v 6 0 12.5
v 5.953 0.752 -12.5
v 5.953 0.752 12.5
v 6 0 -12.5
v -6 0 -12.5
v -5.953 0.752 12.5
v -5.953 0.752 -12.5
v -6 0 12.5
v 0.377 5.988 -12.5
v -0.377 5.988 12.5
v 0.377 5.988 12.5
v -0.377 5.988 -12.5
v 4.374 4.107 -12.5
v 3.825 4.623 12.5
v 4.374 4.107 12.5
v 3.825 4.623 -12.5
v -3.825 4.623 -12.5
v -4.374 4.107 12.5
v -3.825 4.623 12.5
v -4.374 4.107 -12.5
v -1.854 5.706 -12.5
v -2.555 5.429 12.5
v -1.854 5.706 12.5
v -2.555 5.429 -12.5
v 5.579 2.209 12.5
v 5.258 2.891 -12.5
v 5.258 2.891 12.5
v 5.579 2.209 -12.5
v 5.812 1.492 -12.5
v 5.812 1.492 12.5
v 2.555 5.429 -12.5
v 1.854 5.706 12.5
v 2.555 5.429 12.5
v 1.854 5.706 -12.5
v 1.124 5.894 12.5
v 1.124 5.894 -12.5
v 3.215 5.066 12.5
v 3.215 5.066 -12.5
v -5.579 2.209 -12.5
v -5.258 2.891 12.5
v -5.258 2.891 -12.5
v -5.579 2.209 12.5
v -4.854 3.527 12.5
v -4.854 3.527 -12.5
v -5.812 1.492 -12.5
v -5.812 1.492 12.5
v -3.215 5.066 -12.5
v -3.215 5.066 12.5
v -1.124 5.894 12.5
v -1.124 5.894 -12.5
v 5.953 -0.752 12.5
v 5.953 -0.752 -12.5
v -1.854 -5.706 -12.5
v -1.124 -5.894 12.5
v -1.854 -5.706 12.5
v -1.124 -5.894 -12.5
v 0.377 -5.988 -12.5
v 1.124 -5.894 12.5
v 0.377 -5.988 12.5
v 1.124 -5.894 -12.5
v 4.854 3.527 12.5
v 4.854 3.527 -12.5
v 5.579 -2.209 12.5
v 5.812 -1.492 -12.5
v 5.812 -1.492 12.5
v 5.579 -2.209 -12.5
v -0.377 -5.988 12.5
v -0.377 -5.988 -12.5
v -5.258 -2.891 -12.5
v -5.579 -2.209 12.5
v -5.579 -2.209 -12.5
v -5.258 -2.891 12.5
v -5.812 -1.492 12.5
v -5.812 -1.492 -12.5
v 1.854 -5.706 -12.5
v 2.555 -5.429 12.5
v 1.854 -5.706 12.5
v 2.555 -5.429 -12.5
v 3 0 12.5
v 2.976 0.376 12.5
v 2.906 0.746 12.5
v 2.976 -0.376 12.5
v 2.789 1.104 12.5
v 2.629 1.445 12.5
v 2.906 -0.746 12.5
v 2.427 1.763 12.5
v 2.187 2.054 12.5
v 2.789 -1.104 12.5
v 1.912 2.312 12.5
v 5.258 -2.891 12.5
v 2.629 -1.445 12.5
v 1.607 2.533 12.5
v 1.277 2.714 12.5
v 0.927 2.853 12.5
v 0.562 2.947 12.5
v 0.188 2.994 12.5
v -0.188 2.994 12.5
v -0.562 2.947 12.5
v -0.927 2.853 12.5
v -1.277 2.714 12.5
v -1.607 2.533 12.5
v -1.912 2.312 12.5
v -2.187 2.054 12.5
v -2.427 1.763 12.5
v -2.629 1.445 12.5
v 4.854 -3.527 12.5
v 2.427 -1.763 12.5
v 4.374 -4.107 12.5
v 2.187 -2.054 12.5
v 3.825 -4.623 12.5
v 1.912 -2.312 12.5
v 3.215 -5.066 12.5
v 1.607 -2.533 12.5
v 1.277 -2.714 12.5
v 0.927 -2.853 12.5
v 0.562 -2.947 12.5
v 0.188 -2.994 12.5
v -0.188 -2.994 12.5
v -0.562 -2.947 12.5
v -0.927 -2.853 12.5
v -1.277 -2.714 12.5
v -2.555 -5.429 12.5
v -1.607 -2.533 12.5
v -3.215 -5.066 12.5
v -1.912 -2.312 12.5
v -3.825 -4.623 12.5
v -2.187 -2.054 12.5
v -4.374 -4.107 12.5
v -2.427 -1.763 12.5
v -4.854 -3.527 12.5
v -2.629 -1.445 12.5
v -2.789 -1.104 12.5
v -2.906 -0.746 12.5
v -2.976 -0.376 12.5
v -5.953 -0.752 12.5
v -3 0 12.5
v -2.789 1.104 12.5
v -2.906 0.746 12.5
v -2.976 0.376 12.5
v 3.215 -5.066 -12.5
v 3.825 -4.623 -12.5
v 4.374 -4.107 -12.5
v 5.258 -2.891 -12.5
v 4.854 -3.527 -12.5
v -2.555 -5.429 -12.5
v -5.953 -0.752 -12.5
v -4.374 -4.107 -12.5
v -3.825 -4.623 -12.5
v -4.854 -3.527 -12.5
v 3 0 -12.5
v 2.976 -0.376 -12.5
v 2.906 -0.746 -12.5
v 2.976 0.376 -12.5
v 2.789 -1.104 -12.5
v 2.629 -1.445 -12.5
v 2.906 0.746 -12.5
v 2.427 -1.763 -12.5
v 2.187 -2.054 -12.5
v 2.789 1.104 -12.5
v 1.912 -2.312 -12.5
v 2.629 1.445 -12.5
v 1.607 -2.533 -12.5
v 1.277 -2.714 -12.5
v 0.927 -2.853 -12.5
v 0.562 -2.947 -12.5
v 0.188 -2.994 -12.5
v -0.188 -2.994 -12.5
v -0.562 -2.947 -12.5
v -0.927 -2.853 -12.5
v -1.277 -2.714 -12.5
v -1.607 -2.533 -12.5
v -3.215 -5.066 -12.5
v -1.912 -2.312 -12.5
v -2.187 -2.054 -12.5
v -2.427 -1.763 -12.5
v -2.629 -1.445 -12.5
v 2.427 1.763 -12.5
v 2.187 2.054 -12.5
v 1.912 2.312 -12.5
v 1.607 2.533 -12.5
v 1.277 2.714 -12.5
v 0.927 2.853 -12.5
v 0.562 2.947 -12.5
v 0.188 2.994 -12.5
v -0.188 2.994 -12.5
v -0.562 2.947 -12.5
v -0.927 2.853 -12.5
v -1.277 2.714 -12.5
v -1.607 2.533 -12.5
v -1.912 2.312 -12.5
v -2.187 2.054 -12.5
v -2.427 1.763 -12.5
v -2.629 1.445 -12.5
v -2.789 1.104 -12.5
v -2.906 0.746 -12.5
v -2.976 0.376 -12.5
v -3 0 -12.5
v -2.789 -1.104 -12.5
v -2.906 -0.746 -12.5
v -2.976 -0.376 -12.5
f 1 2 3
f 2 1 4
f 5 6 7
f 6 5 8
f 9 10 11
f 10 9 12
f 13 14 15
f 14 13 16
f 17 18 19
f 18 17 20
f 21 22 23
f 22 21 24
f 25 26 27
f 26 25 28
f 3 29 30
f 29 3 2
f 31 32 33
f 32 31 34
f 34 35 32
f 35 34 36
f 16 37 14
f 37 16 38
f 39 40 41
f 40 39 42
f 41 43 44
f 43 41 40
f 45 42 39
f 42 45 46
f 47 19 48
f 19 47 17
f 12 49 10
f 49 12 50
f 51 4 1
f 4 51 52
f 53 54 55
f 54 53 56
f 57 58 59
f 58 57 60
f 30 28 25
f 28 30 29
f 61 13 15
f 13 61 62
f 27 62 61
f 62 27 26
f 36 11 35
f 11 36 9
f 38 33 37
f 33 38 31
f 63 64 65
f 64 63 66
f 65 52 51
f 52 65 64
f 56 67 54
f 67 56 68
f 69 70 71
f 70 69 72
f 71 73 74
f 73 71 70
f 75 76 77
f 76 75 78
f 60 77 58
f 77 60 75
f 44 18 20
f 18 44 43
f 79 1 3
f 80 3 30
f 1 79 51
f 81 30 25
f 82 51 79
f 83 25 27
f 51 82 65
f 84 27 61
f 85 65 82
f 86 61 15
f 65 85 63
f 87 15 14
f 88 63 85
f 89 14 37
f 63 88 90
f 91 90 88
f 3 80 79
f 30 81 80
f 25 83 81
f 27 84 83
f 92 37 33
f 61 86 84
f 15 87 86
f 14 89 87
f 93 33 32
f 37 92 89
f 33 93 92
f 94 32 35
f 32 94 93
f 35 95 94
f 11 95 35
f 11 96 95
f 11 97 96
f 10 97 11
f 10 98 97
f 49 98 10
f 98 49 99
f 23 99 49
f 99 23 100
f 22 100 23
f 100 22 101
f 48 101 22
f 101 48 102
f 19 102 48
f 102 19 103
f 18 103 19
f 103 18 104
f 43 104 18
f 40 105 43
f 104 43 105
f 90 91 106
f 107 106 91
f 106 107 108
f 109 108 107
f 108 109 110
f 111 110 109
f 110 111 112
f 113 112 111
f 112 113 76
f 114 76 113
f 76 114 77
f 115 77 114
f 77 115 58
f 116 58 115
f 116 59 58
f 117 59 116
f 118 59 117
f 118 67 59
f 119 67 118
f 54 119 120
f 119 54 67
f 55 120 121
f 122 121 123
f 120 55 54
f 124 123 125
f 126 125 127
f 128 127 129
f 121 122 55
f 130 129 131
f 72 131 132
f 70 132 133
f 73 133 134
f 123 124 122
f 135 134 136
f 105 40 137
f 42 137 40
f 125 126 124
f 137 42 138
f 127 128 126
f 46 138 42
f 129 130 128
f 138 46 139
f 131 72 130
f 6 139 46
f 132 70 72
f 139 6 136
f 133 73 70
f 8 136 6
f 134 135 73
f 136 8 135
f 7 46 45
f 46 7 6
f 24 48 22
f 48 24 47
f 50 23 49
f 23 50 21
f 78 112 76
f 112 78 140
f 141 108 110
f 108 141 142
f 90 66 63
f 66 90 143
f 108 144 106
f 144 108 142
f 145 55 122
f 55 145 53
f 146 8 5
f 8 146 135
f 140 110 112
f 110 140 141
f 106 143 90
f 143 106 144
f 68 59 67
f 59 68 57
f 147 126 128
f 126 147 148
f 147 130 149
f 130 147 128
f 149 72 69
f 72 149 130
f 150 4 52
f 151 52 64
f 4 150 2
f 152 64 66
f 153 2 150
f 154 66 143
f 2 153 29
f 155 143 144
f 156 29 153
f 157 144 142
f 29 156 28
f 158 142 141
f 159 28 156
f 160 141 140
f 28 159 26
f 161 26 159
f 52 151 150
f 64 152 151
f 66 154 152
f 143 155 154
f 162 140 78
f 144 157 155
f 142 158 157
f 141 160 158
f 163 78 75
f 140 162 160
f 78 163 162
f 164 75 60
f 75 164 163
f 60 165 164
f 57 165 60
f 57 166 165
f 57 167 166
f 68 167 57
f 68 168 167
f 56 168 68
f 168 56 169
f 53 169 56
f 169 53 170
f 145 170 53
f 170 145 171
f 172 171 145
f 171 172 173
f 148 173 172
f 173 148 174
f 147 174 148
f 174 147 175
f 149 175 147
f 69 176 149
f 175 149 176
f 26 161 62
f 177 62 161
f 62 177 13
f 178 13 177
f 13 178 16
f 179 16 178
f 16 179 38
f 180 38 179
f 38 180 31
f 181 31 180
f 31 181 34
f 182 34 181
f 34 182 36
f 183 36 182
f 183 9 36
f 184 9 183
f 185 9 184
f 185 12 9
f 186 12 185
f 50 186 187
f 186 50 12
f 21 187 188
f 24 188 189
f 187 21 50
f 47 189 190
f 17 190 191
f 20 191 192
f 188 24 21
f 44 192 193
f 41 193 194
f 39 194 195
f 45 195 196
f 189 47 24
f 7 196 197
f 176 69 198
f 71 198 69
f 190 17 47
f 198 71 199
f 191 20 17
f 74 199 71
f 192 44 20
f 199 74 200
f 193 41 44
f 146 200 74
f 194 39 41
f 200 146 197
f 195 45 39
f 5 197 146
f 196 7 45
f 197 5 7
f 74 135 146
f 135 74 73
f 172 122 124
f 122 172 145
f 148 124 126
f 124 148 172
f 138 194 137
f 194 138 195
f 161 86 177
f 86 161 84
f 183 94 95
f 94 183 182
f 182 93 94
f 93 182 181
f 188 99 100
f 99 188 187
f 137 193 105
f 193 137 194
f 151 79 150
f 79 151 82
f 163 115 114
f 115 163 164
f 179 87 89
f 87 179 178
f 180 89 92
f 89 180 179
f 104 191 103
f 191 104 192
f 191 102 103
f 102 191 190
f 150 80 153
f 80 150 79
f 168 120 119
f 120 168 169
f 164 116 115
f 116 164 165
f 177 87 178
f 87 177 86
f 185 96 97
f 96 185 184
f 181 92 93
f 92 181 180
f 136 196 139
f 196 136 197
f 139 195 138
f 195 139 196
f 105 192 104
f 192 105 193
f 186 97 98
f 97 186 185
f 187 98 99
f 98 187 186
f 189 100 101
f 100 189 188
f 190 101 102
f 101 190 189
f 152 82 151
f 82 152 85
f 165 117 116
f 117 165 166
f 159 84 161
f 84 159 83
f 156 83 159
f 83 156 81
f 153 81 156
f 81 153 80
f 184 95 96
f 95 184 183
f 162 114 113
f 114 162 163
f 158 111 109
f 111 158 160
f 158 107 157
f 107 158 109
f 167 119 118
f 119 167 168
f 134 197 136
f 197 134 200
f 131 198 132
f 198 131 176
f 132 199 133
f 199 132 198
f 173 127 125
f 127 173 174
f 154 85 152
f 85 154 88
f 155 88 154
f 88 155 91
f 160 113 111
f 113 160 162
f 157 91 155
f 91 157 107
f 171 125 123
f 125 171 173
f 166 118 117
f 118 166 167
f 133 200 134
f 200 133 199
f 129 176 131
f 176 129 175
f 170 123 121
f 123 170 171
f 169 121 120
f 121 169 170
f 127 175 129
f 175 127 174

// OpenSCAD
$fn = 50;


difference() {
	union() {
		translate(v = [0, 0, -12.5000000000]) {
			cylinder(h = 25, r = 6.0000000000);
		}
	}
	union() {
		translate(v = [0, 0, -100.0000000000]) {
			cylinder(h = 200, r = 3.0000000000);
		}
	}
}
